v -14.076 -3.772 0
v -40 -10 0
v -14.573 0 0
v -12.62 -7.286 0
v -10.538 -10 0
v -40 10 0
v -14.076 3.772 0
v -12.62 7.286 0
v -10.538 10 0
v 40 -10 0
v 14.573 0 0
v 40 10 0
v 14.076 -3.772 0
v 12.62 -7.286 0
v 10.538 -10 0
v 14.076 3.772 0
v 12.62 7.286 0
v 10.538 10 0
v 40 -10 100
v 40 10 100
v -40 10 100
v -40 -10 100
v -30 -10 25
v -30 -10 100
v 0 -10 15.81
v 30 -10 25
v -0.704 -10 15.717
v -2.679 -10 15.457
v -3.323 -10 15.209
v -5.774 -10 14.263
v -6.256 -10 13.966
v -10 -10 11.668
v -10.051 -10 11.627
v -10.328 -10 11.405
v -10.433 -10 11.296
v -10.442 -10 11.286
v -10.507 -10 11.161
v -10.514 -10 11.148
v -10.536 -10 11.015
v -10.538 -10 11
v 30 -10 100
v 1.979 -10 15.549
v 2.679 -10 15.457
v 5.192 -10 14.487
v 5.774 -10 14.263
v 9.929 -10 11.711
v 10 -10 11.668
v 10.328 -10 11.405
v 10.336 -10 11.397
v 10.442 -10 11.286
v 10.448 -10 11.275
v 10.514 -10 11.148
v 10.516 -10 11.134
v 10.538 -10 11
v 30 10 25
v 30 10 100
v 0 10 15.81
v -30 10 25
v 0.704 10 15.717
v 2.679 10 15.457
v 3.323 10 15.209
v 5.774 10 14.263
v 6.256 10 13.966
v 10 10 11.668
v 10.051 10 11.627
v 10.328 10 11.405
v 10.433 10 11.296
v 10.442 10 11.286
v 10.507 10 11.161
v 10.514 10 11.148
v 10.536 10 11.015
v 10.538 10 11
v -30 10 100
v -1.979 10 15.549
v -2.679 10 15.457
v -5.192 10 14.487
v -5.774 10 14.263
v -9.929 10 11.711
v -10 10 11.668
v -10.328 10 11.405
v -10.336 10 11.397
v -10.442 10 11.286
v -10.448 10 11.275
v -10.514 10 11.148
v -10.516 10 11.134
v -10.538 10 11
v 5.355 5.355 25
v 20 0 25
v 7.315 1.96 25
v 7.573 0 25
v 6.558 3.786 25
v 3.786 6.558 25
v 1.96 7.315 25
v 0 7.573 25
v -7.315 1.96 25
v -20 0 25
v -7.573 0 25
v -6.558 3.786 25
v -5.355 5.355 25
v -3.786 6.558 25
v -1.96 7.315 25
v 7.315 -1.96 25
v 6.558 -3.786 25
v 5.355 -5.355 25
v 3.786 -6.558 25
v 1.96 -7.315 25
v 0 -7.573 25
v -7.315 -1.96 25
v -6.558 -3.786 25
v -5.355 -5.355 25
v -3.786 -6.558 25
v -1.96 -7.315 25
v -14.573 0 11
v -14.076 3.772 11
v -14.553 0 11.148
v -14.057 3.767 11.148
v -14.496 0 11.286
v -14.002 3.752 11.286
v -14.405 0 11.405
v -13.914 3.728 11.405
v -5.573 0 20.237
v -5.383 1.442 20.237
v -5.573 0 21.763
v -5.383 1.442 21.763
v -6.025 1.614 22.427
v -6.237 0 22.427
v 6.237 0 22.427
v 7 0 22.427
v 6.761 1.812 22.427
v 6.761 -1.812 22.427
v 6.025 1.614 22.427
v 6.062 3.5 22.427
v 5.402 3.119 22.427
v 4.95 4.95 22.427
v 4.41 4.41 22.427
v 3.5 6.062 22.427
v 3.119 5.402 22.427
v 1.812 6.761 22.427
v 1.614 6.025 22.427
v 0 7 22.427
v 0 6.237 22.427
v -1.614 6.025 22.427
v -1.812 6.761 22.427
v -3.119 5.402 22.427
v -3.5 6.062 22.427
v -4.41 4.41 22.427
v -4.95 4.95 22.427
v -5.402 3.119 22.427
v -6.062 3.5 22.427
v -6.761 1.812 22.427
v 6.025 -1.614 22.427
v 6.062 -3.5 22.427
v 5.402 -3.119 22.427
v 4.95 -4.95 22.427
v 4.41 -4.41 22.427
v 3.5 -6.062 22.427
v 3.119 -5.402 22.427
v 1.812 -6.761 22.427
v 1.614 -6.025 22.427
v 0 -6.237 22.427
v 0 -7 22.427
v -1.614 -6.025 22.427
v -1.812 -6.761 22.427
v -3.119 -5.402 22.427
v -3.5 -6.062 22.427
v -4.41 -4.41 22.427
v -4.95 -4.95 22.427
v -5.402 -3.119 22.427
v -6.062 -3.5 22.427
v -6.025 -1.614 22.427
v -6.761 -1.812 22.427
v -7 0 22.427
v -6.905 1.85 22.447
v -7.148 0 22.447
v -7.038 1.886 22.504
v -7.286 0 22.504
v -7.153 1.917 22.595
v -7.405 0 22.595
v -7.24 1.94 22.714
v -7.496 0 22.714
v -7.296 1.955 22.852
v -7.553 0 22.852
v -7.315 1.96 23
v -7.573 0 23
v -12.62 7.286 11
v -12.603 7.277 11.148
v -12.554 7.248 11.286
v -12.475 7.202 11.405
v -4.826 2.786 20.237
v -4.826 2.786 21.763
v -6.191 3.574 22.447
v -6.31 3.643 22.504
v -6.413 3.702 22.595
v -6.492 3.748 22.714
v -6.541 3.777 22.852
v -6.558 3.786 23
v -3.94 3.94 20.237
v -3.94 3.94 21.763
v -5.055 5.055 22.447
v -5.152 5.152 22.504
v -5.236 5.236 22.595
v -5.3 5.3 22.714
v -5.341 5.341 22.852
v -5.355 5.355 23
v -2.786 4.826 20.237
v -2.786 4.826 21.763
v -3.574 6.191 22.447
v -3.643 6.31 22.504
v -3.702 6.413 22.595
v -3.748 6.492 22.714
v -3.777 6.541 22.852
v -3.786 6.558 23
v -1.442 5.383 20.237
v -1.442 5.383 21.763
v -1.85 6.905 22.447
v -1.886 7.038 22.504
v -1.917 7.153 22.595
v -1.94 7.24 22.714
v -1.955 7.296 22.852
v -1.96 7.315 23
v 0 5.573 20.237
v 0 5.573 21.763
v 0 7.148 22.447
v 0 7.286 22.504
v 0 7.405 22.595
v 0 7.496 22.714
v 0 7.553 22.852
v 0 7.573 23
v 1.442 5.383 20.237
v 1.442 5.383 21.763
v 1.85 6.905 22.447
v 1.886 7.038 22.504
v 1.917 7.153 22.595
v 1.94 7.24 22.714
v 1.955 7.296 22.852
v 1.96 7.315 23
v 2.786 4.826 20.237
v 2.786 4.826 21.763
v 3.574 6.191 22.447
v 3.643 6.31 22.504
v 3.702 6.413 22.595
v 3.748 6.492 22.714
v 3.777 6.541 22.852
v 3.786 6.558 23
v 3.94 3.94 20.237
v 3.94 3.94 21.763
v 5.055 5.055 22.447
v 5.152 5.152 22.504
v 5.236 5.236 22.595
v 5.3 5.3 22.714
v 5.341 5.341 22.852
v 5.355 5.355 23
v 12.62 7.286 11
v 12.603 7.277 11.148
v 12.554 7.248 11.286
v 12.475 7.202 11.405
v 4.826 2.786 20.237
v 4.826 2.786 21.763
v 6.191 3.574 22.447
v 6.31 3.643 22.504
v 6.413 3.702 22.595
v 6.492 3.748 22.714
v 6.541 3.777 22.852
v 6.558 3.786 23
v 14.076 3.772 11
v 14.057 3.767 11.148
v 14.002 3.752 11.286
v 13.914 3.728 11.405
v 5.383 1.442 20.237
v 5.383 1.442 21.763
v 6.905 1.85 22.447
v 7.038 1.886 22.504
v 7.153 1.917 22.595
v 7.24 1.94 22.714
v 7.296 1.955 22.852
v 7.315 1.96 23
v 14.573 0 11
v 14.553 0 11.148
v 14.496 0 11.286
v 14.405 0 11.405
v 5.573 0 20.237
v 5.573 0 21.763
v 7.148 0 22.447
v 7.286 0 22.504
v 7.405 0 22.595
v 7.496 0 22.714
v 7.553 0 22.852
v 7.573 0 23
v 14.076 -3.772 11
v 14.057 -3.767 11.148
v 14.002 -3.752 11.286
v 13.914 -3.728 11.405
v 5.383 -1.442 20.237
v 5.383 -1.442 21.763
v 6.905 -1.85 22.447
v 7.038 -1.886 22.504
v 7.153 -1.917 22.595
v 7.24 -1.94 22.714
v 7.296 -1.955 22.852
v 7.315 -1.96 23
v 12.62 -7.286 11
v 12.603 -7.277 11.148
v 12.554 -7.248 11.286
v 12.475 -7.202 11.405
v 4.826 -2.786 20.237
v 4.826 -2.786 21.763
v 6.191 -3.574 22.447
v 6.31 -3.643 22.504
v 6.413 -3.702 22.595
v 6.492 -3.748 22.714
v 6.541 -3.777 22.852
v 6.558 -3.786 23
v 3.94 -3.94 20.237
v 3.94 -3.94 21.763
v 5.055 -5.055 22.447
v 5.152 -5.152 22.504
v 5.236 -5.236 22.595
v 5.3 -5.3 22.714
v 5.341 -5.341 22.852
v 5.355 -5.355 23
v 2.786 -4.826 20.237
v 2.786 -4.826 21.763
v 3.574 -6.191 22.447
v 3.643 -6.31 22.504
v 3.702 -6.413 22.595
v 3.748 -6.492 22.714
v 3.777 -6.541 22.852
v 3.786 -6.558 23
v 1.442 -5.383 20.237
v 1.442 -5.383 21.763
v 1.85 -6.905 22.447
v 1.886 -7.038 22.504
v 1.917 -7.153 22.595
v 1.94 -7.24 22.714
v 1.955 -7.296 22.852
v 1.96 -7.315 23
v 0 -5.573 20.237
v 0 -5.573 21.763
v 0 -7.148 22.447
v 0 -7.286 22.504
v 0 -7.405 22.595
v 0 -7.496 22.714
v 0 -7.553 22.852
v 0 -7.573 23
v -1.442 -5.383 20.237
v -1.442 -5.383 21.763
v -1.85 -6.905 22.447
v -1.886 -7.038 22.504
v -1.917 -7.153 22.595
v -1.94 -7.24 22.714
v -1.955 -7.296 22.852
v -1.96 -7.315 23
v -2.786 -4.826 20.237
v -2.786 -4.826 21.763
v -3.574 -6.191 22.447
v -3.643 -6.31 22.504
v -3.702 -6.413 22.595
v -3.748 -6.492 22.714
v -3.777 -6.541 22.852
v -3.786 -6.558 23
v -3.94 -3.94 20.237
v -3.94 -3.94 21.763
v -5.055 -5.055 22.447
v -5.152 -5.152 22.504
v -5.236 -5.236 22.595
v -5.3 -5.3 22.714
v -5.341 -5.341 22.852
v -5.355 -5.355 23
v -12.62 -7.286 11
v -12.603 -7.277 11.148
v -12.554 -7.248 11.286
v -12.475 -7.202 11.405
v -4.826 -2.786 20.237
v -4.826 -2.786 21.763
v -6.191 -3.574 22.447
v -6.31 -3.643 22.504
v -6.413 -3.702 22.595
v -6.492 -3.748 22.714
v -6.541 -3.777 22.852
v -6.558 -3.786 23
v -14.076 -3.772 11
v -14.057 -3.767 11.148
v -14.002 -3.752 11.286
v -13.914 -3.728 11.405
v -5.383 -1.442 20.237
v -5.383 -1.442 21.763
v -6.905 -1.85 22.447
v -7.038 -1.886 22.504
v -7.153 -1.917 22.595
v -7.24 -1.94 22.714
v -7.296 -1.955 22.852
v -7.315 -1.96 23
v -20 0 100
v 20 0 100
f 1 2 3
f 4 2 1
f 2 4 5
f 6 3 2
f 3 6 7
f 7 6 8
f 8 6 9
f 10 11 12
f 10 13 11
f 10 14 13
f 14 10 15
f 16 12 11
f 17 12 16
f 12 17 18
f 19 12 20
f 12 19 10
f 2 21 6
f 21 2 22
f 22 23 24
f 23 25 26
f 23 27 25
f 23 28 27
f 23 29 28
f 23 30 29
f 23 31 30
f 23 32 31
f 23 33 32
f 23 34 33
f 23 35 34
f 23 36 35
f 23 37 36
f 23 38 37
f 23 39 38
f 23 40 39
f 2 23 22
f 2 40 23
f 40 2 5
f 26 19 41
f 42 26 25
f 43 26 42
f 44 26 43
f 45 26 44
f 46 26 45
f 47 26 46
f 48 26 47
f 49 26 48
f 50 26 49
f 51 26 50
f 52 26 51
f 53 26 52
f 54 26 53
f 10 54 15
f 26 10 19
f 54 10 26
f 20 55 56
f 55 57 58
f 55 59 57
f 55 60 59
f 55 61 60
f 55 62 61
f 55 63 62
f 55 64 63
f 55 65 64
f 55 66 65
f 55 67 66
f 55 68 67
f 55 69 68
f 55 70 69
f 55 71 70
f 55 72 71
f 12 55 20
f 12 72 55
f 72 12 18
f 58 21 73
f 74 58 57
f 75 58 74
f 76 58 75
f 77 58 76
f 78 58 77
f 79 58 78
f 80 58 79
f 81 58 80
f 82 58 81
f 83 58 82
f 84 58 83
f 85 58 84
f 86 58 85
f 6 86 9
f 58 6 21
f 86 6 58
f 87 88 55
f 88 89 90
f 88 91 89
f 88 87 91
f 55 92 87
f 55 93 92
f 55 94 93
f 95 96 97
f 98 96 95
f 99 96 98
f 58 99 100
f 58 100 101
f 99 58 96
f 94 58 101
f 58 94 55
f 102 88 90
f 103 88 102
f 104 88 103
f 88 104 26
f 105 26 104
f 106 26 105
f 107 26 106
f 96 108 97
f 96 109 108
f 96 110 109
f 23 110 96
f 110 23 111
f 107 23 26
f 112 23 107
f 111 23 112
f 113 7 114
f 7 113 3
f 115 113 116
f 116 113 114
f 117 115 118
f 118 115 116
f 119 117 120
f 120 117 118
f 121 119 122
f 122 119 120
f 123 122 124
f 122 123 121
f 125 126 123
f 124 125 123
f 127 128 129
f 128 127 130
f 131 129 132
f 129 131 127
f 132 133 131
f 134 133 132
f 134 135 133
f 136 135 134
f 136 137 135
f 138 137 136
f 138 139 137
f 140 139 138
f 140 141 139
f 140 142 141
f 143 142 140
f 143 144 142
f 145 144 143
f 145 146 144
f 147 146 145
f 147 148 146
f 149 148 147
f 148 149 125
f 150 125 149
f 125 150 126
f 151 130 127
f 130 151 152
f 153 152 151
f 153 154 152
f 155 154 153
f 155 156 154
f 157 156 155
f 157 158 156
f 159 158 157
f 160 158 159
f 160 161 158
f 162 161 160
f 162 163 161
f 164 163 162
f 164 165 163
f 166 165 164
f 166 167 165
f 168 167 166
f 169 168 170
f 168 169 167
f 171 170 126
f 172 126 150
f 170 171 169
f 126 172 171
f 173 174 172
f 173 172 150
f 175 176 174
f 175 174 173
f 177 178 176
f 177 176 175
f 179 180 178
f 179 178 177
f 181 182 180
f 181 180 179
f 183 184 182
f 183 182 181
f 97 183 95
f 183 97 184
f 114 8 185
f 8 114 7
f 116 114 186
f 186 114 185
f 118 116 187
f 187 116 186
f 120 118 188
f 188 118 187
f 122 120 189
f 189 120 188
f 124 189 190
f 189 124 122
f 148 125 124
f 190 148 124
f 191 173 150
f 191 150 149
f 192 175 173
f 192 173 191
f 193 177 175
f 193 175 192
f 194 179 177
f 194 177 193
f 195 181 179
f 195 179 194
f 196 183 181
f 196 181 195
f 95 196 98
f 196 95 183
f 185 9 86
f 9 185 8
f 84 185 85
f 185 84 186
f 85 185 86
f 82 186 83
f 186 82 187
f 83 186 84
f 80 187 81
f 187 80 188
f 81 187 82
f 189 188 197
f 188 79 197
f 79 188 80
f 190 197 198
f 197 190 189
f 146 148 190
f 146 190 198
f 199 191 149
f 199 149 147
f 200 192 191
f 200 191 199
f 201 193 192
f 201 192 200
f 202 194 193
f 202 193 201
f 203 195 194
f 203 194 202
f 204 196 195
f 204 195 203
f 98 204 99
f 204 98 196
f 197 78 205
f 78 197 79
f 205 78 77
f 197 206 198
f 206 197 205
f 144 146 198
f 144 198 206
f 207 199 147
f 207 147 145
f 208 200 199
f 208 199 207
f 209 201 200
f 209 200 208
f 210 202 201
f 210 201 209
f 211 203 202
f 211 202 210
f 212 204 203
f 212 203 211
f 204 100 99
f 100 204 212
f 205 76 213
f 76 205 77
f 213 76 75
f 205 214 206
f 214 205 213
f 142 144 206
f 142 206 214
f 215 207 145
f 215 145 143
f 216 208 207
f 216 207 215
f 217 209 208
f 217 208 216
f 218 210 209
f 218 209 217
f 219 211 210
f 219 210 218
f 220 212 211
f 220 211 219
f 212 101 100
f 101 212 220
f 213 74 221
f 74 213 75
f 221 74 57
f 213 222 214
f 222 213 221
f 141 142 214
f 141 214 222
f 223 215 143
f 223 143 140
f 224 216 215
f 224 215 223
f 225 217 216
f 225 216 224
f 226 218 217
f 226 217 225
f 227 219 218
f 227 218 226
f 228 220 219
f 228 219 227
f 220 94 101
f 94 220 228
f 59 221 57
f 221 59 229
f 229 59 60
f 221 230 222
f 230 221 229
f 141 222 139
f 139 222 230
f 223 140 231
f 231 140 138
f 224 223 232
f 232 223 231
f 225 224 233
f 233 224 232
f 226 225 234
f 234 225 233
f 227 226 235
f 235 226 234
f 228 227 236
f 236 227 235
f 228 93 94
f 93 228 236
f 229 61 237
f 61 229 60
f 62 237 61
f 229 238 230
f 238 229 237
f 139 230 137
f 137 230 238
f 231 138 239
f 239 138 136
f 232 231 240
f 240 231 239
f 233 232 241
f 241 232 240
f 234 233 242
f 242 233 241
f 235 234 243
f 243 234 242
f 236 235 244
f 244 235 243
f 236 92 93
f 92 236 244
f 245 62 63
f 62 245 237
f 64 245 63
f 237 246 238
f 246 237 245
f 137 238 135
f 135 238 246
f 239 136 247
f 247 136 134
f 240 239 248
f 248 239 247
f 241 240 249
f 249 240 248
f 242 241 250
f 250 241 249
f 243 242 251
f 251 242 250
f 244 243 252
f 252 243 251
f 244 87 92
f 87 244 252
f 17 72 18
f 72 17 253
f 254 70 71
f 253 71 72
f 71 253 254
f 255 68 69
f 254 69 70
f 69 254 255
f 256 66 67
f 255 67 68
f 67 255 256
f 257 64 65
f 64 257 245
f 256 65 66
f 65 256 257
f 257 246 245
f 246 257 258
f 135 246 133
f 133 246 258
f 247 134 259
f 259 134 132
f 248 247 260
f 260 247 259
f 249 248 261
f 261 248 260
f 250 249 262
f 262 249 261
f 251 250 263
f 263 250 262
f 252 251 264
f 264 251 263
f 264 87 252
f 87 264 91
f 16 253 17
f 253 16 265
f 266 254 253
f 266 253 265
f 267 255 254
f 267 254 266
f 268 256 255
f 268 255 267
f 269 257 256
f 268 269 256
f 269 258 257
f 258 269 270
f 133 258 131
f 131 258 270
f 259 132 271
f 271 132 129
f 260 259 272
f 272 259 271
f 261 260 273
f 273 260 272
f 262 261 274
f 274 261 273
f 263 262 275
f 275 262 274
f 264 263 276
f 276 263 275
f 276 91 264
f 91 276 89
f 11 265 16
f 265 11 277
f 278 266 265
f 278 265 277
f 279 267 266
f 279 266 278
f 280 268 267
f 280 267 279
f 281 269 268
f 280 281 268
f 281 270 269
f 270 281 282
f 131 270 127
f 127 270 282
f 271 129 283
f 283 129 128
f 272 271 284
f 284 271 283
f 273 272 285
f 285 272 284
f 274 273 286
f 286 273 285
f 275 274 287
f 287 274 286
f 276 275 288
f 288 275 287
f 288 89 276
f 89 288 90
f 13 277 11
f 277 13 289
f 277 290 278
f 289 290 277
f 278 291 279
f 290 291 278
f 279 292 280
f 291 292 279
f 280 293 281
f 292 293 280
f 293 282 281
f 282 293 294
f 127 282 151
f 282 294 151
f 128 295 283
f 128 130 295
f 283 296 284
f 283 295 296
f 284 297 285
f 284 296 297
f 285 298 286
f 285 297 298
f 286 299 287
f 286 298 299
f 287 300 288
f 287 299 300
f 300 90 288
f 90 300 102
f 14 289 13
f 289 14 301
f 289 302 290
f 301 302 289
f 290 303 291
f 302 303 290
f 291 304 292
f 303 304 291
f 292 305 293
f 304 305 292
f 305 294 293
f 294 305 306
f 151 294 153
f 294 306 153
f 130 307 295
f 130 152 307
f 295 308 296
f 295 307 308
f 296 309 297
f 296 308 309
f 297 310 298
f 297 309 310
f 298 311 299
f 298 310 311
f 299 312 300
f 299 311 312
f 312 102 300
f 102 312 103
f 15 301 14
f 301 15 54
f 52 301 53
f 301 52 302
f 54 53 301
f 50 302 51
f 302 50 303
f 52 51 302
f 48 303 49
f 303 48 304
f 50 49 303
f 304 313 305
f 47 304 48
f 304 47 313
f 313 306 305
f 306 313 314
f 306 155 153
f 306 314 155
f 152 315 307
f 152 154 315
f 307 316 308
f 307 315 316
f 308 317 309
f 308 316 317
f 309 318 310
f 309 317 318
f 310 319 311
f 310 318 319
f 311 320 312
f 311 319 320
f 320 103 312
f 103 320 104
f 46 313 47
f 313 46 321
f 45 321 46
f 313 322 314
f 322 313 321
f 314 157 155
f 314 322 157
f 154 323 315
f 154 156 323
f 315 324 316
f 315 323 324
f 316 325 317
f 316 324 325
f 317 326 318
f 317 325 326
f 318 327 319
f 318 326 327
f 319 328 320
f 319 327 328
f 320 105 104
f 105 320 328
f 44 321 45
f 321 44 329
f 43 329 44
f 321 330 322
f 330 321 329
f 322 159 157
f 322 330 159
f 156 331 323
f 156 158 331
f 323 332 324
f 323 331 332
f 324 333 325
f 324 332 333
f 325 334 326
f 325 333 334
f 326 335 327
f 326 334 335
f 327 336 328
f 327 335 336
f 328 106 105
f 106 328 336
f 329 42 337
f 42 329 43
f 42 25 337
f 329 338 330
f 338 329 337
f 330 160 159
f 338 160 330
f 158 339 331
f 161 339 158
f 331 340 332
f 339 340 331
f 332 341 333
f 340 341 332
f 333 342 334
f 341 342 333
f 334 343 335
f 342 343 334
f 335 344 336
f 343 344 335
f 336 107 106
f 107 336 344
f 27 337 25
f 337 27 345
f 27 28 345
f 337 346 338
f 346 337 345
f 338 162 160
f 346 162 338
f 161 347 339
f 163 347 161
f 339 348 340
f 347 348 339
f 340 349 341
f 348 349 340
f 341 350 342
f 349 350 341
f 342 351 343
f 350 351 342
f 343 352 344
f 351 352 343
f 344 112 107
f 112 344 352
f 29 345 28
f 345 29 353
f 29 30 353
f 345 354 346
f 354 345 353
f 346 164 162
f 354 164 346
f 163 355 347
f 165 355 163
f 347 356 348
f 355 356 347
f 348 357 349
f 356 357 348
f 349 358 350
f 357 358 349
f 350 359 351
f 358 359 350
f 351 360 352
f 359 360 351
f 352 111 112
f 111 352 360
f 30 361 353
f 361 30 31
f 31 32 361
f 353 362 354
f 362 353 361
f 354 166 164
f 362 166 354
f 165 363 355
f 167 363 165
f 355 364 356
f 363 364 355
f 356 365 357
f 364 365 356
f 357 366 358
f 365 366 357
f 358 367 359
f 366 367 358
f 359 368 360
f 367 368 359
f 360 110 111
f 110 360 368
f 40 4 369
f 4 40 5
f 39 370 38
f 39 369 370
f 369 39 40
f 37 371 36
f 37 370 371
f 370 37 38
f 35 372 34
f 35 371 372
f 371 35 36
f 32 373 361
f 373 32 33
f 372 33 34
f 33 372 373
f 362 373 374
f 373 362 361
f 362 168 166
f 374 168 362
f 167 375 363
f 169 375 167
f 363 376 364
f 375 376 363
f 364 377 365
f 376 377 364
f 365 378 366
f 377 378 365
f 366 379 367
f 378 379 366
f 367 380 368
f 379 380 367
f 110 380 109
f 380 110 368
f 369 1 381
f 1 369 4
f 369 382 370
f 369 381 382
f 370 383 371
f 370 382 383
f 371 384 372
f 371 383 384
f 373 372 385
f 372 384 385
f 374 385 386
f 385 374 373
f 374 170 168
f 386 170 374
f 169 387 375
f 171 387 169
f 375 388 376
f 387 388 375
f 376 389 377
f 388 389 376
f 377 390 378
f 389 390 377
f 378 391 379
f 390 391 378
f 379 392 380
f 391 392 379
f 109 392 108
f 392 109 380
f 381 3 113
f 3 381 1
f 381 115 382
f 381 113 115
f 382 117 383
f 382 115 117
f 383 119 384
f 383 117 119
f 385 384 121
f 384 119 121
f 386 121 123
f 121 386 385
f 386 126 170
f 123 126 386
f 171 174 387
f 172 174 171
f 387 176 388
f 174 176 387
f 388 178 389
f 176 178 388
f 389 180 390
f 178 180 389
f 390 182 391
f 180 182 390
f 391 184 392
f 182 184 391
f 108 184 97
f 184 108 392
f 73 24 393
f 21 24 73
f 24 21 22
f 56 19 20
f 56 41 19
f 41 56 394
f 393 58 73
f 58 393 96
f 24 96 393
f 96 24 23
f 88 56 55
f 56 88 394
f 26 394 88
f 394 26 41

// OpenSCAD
tolerance = .4; 
// Create rails for slider
linear_extrude(100, convexity = 5) intersection() {
square([80, 20], center = true);
for(i = [0, 1]) mirror([i, 0, 0]) translate([20, 0, 0]) rotate(-45)
square(100);
}
// Create the base
difference() {
linear_extrude(25, convexity = 5) square([80, 20], center = true);
rotate_extrude(convexity = 5, $fn = 24) difference() {
offset(tolerance + (1/cos(180/24) - 1) * 20) difference() {
square([14, 25]);
difference() {
hull() for(i = [20 + tolerance*0, 22 - tolerance*0])
translate([5, i, 0]) rotate(-45) square(20);
translate([0, 23, 0]) square(7);
}
translate([7, 20, 0]) square(20);
}
translate([-100, -10, 0]) square(100);
}
}
